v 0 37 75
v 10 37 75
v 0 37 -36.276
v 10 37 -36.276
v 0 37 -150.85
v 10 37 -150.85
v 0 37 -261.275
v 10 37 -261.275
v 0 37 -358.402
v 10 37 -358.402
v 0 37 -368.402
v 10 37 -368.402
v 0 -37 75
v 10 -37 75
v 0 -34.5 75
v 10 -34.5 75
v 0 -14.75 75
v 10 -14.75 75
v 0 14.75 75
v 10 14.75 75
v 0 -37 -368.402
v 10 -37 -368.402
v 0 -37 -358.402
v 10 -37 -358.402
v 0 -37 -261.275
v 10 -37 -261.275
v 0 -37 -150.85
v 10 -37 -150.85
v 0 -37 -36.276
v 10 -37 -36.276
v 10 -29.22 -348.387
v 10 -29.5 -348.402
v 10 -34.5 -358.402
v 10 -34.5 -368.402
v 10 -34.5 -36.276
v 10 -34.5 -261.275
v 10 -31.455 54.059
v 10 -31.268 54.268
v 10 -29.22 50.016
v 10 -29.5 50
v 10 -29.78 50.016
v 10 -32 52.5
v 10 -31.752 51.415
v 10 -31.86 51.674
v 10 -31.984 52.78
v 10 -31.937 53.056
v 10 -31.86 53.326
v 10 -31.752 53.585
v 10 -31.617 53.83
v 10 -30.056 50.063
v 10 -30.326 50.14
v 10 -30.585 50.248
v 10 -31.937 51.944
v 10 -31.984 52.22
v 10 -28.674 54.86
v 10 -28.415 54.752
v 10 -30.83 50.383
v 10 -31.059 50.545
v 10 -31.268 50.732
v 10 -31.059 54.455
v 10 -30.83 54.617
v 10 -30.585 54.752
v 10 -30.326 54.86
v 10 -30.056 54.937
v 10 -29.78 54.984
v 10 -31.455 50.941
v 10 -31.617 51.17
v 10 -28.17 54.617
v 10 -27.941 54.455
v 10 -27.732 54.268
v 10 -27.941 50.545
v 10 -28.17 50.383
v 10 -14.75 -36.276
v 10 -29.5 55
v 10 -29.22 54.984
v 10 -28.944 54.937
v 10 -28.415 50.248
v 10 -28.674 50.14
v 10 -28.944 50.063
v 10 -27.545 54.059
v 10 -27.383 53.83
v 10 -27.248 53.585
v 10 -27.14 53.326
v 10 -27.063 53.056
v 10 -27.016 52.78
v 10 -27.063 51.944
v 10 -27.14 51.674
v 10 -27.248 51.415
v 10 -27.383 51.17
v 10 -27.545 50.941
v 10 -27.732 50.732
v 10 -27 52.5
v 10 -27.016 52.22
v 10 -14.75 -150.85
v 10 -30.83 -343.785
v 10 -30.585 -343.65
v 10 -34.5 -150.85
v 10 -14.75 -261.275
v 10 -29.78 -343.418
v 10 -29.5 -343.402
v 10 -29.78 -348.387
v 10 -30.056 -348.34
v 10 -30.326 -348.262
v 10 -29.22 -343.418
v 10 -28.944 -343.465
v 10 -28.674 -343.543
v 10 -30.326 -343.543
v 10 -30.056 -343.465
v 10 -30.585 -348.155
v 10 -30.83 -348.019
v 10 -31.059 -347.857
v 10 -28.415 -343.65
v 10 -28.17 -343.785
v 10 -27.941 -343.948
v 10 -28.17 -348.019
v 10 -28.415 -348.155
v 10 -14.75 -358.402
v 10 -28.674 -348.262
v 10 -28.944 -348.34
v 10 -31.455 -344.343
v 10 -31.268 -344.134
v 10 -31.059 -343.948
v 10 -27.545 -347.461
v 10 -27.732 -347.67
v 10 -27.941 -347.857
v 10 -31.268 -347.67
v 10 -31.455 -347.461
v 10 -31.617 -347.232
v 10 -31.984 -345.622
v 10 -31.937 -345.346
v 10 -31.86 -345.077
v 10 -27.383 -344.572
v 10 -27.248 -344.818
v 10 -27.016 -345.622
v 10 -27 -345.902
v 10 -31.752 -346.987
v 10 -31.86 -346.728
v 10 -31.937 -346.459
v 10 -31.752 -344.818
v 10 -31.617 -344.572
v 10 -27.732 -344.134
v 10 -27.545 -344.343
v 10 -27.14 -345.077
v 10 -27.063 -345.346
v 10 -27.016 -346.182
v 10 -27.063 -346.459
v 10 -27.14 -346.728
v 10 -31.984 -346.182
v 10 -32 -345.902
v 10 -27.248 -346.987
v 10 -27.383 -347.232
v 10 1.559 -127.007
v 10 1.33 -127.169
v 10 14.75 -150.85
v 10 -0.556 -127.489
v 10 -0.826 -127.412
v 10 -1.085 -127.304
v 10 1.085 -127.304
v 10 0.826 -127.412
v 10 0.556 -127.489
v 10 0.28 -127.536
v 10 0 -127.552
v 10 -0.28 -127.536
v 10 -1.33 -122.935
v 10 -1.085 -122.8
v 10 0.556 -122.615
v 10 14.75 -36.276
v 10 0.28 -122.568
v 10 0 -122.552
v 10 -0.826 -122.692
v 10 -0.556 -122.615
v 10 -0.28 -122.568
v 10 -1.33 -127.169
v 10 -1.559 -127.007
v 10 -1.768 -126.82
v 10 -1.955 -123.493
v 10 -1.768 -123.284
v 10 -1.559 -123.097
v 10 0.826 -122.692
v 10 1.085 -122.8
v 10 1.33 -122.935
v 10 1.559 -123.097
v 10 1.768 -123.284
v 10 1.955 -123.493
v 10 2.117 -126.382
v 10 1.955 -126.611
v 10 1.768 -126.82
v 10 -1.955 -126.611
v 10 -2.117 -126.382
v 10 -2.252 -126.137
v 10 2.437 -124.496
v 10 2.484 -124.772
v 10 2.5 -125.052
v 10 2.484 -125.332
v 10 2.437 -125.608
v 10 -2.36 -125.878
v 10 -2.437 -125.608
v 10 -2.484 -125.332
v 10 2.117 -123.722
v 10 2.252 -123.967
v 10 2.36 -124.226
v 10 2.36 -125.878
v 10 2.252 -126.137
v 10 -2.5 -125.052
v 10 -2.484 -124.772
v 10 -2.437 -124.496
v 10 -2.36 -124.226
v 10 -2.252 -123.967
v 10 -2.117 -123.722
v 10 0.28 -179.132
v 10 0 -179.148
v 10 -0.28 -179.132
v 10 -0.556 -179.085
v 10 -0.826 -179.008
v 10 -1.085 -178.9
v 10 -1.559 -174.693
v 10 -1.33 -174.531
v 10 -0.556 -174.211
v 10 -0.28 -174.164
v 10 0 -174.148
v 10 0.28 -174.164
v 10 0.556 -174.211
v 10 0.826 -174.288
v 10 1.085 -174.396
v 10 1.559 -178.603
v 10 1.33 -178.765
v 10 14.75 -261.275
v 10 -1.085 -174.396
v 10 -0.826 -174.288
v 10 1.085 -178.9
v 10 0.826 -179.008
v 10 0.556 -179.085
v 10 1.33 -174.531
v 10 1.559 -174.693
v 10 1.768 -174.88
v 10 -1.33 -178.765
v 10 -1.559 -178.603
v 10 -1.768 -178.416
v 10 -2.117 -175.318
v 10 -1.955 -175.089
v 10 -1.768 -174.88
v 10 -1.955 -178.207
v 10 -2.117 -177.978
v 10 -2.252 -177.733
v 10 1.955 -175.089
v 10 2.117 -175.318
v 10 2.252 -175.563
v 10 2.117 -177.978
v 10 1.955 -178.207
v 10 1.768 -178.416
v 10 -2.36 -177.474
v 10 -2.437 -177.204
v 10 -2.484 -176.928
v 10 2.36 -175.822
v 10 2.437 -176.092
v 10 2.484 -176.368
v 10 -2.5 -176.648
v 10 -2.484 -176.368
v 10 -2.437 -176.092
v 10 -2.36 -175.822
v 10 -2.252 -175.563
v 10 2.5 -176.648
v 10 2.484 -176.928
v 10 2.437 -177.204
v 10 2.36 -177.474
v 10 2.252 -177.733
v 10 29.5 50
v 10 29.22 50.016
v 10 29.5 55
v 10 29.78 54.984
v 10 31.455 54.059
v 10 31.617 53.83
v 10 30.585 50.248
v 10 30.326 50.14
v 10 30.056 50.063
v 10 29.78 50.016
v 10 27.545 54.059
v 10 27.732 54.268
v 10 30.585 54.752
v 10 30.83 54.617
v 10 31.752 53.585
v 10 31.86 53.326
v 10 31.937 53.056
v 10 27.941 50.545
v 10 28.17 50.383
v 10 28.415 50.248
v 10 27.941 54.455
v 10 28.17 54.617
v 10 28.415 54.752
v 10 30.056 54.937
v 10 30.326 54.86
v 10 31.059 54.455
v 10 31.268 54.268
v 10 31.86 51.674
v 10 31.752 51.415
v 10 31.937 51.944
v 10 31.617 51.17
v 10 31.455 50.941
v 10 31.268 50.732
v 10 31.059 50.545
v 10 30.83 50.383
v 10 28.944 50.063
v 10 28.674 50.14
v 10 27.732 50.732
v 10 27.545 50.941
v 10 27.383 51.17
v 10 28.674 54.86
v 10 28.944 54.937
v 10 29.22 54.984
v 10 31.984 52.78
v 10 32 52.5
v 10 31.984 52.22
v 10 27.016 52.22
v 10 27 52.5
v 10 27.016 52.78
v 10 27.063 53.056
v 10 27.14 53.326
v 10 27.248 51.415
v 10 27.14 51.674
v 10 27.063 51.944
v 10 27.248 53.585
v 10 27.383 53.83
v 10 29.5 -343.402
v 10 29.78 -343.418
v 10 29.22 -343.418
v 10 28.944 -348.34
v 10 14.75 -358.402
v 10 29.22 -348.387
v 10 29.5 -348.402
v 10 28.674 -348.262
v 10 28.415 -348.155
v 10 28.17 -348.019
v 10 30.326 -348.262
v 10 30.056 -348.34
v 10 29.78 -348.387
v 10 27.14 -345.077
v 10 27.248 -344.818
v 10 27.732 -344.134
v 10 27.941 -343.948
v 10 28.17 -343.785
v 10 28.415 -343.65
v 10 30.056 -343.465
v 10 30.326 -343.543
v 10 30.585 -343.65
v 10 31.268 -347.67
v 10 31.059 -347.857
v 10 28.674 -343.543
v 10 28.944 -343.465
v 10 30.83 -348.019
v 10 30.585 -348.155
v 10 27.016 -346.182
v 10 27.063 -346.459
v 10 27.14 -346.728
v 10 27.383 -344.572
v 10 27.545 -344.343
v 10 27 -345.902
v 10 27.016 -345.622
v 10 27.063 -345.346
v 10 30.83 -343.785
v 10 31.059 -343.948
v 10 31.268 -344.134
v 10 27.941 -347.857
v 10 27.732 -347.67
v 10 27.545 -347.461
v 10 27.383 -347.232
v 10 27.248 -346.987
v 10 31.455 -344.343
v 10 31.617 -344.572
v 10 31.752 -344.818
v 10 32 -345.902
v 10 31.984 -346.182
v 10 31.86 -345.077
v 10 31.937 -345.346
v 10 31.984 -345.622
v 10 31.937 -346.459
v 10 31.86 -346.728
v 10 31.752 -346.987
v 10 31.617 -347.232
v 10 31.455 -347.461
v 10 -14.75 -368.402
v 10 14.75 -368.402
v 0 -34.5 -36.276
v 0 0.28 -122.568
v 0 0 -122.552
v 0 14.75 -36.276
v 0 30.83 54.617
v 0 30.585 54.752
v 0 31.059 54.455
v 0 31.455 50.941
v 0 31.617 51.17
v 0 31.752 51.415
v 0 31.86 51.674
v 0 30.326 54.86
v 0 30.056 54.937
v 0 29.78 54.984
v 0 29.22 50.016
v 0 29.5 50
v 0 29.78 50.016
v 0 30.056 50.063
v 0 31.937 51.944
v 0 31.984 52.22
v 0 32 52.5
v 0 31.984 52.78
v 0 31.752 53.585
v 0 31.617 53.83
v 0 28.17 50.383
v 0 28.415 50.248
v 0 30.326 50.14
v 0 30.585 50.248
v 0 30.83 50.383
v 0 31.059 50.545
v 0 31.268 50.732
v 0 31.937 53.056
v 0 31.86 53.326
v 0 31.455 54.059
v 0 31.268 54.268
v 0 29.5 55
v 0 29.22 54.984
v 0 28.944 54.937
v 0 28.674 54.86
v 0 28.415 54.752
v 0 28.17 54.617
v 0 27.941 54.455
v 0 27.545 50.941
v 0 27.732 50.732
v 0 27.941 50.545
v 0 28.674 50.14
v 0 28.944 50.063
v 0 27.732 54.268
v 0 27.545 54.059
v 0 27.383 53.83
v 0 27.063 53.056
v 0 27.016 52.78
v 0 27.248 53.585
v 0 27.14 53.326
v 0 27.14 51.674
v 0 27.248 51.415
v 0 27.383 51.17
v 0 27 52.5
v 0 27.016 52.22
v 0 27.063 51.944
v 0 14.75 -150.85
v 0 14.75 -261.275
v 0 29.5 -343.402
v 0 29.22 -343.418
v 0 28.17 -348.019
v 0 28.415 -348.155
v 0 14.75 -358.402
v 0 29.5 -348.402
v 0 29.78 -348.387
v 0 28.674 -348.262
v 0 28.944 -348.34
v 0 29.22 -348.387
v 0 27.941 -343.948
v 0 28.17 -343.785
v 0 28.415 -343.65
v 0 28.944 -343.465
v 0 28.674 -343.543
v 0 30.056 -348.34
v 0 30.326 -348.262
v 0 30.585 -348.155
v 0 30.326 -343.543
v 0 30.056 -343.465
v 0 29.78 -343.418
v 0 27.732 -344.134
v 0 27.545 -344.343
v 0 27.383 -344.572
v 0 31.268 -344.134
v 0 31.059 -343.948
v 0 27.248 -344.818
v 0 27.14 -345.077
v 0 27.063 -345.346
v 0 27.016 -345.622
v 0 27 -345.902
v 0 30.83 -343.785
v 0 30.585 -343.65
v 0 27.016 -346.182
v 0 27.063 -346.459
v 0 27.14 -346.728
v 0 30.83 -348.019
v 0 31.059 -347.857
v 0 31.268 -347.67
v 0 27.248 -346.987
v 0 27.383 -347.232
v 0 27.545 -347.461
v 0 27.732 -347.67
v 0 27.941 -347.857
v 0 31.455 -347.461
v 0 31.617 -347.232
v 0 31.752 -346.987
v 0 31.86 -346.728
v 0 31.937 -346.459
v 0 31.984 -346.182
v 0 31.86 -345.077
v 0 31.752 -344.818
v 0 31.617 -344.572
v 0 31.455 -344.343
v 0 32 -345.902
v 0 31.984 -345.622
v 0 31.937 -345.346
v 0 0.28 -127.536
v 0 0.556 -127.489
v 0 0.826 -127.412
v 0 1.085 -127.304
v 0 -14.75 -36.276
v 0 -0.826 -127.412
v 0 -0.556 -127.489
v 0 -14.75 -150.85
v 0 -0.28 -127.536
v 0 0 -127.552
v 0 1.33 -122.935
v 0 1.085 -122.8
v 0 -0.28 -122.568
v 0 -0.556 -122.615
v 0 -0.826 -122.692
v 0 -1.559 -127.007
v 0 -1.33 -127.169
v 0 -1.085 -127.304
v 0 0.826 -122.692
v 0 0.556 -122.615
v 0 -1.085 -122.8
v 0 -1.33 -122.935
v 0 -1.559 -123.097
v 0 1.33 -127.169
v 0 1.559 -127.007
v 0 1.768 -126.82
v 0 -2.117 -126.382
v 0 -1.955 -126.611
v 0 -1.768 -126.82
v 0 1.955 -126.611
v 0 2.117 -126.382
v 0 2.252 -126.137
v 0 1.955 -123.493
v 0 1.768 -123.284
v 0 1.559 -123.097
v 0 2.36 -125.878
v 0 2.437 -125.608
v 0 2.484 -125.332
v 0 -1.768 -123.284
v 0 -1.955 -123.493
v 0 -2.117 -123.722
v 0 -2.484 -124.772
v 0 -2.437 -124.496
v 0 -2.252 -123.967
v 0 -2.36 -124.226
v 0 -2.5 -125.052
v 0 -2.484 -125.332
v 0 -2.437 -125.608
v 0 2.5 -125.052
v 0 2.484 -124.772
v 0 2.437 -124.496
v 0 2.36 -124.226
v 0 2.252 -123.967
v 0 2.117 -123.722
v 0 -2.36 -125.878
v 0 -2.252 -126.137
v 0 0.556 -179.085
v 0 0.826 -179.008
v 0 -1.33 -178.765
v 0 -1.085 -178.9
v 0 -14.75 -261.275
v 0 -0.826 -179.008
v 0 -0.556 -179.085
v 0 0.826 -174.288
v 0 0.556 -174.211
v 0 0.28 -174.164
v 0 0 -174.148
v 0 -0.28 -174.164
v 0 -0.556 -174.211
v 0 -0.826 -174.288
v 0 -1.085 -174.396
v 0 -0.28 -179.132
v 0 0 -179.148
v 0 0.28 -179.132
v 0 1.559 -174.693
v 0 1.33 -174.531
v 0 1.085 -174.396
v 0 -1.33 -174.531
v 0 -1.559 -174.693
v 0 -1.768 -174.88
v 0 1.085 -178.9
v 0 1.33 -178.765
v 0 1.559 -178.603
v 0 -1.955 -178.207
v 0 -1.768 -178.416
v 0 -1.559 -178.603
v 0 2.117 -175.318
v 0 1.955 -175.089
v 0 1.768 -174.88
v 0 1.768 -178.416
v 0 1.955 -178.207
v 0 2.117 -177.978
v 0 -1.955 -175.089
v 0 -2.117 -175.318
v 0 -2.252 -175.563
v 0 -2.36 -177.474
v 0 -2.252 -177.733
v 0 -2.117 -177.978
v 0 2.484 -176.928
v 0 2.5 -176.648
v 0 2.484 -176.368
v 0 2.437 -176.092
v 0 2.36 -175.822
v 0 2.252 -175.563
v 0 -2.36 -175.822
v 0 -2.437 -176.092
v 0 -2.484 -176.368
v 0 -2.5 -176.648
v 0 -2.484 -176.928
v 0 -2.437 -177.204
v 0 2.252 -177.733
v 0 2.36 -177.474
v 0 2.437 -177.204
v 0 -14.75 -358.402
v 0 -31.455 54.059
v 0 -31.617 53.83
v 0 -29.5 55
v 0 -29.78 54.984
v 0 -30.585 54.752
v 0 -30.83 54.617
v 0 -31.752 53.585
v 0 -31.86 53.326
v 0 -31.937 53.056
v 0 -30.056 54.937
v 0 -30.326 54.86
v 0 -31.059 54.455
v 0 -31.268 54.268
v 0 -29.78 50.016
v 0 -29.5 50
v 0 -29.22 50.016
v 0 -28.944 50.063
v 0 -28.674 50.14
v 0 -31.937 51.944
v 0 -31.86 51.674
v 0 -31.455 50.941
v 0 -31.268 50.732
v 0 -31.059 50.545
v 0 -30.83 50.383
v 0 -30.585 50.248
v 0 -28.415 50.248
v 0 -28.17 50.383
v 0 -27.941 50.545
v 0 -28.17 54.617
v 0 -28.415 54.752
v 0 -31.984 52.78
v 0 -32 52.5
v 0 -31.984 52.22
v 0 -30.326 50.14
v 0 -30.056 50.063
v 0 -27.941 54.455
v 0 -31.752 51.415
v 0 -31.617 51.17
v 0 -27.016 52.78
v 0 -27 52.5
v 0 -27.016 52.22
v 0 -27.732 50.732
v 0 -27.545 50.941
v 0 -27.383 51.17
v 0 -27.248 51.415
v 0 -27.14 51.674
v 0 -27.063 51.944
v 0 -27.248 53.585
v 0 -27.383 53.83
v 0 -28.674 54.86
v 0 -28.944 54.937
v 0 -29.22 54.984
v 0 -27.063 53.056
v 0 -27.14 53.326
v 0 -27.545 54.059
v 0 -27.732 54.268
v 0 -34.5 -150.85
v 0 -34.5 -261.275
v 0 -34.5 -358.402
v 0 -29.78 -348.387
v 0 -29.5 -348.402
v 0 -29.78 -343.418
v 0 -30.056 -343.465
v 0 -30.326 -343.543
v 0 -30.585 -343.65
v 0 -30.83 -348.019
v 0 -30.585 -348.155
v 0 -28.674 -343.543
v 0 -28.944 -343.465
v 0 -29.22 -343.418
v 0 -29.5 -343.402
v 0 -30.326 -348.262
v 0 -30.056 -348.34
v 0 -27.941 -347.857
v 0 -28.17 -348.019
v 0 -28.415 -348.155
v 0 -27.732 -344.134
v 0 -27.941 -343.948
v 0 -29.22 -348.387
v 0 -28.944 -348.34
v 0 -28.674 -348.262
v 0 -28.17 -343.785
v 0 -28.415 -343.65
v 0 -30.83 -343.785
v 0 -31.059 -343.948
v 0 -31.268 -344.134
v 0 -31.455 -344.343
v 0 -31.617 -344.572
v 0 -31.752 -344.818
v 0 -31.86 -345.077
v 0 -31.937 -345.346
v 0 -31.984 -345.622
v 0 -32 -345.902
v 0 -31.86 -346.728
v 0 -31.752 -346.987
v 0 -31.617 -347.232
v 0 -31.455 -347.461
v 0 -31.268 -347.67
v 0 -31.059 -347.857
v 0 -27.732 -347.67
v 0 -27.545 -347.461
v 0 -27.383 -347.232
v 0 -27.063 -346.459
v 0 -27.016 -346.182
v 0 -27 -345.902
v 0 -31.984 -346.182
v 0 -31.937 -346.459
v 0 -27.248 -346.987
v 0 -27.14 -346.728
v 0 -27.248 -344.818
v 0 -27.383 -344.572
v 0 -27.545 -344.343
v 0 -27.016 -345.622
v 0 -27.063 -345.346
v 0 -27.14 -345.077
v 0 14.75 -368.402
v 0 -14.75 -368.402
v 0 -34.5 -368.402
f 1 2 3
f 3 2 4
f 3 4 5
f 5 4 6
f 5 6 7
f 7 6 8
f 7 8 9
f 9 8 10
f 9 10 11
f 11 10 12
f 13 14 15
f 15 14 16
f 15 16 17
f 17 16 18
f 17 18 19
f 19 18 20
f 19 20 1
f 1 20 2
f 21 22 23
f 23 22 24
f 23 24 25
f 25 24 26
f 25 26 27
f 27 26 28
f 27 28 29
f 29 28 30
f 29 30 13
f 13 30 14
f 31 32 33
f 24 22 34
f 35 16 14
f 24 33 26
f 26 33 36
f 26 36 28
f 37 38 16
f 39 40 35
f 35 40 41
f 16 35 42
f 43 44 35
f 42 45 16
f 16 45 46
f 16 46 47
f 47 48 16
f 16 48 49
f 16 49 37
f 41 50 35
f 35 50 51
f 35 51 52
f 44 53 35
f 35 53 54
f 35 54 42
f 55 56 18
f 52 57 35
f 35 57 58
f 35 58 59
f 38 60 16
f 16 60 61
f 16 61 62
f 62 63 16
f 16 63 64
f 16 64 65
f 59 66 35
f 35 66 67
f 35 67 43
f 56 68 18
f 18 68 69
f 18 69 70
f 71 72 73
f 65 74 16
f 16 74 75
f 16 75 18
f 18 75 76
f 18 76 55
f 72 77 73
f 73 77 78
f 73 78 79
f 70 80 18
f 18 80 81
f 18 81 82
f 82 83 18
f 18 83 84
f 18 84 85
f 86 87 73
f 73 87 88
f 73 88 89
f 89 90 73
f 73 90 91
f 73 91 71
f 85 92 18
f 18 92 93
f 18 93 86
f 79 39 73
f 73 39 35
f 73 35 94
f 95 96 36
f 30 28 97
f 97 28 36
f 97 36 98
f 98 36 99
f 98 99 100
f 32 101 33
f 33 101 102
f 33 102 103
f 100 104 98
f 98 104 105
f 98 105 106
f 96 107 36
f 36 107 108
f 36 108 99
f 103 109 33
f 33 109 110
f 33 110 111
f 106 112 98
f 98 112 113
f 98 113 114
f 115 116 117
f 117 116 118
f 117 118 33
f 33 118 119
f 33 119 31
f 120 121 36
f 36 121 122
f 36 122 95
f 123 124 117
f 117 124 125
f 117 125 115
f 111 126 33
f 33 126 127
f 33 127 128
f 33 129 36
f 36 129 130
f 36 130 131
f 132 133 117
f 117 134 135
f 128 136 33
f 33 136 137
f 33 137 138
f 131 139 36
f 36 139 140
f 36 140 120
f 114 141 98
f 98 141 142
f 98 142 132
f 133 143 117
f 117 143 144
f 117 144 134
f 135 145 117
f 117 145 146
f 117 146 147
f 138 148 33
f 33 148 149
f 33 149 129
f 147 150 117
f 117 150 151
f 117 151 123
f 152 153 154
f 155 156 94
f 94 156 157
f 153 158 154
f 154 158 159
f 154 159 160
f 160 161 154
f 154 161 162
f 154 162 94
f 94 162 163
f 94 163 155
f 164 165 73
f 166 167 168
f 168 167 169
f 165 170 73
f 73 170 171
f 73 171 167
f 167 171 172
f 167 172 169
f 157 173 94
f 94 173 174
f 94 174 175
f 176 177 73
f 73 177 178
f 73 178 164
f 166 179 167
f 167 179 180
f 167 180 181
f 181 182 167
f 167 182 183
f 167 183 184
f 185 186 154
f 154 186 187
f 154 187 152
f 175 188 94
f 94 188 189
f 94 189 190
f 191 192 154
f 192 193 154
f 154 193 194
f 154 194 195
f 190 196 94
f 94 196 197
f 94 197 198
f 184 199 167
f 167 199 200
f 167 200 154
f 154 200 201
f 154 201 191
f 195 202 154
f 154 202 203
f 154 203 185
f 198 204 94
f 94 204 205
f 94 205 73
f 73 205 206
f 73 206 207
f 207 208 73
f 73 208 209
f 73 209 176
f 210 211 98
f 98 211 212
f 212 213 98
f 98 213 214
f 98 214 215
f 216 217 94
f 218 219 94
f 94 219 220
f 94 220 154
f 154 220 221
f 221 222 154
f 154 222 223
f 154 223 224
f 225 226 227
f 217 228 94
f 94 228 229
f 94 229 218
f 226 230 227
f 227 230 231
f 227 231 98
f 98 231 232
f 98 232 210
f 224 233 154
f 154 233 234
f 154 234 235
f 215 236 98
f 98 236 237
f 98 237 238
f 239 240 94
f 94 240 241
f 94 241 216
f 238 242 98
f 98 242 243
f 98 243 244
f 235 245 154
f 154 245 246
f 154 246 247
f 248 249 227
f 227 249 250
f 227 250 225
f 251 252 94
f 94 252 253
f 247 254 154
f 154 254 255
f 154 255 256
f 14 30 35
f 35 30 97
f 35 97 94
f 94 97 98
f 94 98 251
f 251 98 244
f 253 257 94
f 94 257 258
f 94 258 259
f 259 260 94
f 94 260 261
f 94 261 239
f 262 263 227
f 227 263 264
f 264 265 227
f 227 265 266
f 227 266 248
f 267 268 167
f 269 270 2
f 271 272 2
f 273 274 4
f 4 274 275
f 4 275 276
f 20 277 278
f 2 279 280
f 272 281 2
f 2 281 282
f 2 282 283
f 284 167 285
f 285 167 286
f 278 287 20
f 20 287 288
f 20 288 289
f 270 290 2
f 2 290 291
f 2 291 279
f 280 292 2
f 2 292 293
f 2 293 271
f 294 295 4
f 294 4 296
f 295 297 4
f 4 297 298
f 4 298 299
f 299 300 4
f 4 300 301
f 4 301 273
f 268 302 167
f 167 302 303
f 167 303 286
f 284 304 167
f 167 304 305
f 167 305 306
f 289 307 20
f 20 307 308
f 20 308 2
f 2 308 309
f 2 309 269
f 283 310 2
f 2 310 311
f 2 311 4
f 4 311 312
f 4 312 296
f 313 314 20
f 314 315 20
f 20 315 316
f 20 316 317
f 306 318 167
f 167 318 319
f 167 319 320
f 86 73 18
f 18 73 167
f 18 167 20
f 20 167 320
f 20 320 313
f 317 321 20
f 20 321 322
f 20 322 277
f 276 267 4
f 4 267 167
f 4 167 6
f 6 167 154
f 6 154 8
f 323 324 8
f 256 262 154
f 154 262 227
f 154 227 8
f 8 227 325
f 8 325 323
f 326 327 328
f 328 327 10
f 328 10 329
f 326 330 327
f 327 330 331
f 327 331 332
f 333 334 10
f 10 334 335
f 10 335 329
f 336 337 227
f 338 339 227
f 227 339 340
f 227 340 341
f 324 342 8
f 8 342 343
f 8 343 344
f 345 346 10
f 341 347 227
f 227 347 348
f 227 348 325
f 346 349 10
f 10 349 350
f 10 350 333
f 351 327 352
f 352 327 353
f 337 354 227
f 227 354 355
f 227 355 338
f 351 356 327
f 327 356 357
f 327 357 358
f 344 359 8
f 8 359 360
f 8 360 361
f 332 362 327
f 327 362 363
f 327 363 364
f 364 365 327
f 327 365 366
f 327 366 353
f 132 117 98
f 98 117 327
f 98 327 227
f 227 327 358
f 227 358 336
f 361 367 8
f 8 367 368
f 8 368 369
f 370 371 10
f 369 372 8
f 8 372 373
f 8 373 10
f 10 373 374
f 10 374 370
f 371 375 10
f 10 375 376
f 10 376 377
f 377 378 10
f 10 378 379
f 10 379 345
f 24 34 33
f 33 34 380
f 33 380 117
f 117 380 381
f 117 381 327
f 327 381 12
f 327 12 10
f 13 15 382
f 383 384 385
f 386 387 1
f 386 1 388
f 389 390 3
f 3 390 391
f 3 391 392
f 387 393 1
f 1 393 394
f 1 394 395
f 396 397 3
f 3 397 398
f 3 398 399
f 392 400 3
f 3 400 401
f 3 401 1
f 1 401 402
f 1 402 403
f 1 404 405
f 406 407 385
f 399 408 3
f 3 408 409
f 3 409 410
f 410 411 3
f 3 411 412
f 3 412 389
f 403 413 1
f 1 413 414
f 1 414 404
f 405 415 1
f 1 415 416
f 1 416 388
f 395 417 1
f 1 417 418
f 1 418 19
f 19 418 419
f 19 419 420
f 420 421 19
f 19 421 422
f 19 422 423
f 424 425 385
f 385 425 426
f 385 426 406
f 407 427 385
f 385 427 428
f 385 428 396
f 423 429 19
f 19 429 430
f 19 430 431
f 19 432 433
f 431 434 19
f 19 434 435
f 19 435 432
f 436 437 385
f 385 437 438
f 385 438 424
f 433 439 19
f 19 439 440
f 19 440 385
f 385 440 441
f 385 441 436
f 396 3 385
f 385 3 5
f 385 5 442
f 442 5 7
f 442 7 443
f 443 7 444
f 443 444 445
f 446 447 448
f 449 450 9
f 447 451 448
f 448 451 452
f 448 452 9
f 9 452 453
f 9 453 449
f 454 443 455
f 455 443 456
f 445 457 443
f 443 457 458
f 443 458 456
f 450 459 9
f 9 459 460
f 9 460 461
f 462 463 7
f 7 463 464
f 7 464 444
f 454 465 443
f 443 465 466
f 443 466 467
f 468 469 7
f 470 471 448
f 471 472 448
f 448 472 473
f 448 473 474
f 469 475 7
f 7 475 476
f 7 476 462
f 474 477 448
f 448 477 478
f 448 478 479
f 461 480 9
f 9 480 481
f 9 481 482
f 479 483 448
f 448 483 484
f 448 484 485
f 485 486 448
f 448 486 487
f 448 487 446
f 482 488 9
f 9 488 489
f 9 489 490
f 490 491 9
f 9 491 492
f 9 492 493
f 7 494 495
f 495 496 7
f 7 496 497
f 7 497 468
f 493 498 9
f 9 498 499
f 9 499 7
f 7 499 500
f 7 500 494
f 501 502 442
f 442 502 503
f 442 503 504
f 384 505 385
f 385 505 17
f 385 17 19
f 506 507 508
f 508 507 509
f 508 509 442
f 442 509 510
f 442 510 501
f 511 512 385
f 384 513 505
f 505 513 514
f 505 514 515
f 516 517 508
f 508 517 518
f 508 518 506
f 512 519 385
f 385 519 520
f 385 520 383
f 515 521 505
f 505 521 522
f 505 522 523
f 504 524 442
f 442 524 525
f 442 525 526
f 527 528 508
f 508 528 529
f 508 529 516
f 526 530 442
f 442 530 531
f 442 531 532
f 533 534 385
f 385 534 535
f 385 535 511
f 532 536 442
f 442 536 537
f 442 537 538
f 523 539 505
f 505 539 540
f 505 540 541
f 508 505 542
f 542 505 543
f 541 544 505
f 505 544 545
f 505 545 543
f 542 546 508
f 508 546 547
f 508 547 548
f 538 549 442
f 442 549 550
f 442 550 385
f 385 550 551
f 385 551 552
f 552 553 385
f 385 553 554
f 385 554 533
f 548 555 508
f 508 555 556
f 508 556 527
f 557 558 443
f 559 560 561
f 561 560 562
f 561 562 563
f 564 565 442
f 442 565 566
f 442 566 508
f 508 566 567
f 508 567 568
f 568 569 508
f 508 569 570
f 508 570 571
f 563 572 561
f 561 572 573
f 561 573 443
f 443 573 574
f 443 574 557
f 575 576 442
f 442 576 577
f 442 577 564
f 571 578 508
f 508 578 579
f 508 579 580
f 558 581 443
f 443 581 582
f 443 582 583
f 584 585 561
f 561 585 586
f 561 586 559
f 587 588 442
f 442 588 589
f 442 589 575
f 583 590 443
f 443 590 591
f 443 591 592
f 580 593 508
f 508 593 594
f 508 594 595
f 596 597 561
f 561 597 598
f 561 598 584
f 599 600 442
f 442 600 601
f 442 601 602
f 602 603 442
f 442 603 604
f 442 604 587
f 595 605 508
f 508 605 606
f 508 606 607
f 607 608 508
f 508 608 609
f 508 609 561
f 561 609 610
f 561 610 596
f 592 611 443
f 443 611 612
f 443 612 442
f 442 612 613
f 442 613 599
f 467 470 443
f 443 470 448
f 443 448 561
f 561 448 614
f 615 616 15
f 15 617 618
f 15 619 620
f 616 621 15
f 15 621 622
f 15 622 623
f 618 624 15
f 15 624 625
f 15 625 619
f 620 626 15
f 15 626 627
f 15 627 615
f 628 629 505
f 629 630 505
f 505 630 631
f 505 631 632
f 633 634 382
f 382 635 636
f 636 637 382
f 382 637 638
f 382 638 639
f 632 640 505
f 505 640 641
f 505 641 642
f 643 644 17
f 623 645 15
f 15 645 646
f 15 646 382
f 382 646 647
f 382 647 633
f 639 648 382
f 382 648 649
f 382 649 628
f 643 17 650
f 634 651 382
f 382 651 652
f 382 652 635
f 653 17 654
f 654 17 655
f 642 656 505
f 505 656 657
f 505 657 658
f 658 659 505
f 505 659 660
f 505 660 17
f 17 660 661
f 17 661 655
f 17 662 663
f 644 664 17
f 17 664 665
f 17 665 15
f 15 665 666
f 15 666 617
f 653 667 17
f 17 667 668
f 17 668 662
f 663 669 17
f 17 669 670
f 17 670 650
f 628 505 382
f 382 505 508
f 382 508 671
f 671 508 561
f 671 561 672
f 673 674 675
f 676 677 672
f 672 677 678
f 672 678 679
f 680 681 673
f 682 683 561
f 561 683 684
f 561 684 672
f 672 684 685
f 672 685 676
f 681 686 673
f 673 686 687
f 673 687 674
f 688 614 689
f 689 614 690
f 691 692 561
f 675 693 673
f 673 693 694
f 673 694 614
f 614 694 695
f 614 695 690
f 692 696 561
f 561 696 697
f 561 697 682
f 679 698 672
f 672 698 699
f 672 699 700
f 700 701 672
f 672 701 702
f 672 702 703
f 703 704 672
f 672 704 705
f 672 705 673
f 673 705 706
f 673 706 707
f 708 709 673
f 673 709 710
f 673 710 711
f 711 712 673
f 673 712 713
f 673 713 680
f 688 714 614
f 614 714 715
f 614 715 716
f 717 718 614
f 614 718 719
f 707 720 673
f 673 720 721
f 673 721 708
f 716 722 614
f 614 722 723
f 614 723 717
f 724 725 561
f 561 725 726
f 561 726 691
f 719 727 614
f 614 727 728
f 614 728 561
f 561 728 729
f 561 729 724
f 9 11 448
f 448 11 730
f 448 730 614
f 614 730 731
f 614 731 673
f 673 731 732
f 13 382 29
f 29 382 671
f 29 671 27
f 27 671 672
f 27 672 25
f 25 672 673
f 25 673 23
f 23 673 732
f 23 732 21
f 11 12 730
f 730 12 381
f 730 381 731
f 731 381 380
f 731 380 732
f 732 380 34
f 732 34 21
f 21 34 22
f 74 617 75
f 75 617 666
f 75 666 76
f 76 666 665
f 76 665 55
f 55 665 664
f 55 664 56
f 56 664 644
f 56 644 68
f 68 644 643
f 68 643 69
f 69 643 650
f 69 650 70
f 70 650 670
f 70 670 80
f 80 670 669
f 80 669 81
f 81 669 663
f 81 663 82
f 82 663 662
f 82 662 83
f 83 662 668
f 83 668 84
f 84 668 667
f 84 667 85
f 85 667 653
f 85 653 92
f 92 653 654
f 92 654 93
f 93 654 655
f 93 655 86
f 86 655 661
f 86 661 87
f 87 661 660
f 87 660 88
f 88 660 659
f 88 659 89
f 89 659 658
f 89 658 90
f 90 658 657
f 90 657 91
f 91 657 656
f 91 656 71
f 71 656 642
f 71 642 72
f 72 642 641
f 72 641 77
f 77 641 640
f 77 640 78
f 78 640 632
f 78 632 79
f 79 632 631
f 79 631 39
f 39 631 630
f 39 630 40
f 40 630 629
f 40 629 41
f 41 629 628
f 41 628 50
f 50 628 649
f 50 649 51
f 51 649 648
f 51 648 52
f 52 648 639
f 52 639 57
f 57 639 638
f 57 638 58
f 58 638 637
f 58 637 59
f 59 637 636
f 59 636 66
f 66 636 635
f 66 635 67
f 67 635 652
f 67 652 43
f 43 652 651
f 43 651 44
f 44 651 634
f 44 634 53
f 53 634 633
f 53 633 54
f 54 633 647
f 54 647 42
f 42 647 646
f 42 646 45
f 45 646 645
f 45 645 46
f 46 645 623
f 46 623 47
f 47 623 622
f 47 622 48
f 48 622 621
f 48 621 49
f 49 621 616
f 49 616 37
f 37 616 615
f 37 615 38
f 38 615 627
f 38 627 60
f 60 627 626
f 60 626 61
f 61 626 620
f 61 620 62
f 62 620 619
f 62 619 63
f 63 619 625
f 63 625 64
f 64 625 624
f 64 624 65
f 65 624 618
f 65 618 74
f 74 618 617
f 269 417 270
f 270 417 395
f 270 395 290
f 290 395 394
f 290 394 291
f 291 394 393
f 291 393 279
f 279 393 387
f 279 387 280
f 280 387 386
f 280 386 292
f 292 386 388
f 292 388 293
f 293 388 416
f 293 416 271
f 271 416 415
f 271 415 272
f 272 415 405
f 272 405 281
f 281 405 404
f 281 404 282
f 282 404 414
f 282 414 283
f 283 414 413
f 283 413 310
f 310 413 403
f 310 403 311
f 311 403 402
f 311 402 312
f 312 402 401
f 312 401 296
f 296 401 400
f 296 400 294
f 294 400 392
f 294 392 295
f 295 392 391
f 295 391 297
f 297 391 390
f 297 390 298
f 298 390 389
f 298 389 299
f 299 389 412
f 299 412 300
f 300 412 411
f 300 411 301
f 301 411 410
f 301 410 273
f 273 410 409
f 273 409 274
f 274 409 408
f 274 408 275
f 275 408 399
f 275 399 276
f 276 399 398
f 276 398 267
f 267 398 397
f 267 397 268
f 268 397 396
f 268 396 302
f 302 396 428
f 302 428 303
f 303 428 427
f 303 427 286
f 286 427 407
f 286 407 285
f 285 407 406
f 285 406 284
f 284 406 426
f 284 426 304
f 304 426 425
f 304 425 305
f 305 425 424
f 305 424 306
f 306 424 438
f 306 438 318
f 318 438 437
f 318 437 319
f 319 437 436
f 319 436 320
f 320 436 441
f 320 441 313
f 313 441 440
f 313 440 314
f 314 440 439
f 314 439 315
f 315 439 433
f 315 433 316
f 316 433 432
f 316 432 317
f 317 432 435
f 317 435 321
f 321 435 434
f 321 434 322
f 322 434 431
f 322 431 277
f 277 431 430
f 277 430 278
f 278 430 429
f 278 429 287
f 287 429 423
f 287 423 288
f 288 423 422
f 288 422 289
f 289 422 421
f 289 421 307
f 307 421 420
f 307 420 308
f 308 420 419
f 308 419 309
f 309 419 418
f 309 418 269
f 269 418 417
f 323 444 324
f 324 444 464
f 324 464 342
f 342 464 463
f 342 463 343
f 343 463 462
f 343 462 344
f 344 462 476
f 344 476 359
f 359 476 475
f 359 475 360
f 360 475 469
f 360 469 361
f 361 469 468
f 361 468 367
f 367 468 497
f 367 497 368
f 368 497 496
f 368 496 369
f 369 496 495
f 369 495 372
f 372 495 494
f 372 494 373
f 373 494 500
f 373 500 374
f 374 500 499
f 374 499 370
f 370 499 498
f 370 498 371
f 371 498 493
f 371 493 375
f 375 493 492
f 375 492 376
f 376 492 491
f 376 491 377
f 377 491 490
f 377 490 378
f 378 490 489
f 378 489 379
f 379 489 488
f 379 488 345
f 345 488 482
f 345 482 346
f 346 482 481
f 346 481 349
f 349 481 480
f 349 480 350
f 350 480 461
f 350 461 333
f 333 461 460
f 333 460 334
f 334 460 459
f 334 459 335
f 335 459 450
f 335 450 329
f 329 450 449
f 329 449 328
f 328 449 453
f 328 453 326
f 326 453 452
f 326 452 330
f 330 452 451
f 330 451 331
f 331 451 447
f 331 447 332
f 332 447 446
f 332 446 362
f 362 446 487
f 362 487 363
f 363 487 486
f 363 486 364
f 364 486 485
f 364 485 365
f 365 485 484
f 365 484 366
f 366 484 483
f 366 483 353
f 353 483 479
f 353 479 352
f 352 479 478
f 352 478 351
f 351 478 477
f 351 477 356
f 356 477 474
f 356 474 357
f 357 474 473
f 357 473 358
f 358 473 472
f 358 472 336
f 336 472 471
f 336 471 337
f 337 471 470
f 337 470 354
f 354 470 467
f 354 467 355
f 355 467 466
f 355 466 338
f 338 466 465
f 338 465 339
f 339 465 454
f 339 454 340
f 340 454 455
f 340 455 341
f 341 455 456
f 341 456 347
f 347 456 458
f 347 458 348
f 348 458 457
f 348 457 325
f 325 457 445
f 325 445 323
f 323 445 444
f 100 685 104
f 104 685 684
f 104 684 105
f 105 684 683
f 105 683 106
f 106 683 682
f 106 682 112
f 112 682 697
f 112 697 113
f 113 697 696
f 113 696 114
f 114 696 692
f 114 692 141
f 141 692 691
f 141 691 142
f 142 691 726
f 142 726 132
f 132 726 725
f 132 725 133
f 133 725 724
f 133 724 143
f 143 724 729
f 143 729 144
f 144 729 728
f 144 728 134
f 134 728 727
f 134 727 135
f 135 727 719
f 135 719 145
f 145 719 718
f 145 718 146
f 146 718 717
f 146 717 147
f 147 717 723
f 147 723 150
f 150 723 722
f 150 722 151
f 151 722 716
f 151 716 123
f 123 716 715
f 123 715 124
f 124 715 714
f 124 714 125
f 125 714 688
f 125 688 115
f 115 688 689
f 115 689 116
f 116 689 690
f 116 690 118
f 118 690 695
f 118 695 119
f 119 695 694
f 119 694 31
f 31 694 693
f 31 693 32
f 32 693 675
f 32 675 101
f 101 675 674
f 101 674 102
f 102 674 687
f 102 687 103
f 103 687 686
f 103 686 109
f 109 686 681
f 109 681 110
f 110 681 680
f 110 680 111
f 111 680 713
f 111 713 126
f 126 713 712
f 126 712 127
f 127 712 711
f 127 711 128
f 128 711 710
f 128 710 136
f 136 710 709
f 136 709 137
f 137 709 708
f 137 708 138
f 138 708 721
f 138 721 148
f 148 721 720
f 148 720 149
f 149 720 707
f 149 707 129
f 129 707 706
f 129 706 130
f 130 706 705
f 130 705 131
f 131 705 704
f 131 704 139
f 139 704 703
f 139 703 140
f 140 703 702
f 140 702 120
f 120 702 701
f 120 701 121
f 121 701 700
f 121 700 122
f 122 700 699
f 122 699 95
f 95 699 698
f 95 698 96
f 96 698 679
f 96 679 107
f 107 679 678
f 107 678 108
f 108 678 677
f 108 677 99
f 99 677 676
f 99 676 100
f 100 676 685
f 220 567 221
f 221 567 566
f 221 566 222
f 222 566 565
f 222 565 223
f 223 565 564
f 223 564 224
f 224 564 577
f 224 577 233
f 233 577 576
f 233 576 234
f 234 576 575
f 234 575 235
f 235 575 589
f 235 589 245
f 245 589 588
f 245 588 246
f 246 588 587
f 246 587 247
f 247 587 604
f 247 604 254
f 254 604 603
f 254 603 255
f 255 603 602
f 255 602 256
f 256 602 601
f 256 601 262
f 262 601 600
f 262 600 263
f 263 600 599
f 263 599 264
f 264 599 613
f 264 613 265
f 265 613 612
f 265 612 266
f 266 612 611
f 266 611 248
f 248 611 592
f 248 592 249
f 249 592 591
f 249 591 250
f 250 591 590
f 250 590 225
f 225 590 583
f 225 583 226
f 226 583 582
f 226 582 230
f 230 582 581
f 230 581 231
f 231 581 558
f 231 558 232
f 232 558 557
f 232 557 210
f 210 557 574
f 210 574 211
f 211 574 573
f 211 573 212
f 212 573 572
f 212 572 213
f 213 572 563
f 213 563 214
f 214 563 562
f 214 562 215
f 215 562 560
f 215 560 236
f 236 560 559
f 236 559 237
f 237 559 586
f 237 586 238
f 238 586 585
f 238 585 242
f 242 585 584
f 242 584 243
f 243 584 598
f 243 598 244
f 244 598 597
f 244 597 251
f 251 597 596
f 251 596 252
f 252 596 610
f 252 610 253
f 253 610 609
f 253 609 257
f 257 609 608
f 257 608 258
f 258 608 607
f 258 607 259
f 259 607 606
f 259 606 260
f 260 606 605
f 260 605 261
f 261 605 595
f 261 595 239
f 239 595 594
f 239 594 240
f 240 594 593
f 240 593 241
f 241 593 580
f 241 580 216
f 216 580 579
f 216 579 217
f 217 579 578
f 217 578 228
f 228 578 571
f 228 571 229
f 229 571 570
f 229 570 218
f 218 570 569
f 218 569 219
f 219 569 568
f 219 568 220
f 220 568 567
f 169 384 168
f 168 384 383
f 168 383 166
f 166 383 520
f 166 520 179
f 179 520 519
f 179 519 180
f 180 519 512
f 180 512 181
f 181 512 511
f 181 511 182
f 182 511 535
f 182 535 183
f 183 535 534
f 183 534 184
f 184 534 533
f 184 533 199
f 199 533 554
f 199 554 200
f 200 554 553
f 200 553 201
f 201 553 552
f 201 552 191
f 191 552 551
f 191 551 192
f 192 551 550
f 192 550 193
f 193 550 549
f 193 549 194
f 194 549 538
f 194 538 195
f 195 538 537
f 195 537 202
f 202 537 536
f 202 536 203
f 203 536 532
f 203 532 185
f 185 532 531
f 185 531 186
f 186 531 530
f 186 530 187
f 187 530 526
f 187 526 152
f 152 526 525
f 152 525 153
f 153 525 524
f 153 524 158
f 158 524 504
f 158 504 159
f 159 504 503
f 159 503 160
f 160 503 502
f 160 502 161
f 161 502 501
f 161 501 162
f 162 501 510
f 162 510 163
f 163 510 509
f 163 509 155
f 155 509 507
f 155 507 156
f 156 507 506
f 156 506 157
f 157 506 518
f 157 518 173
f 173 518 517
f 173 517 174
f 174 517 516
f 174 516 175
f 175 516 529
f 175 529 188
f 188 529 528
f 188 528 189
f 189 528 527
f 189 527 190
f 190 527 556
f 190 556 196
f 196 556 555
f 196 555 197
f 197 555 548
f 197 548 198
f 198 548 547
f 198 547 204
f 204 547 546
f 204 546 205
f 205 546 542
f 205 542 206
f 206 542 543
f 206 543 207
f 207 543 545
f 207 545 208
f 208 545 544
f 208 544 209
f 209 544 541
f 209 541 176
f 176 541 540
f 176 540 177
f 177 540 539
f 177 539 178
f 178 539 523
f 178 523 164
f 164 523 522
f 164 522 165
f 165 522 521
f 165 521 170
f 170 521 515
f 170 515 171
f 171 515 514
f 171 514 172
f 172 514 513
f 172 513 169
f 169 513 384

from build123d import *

# Parameters (mm, degrees)
SKETCH1_W           = 150
SKETCH1_H           = 74
BOSS_EXTRUDE1_DEPTH = 10
SKETCH2_W           = 10
SKETCH2_H           = 74
BOSS_EXTRUDE2_DEPTH = 283.402218
SKETCH3_W           = 10
SKETCH3_H           = 74
BOSS_EXTRUDE3_DEPTH = 10
SKETCH4_R           = 2.5
CUT_EXTRUDE1_DEPTH  = 10
SKETCH11_R          = 2.5
CUT_EXTRUDE2_DEPTH  = 10


with BuildPart() as part:
    # Sketch1 → Boss-Extrude1 (new body)
    with BuildSketch(Plane(origin=(0, 0, 0), x_dir=(0, 0, -1), z_dir=(1, 0, 0))):
        Rectangle(SKETCH1_W, SKETCH1_H)
    extrude(amount=BOSS_EXTRUDE1_DEPTH)

    # Sketch2 → Boss-Extrude2 (add)
    with BuildSketch(Plane(origin=(0, 0, -75), x_dir=(-1, 0, 0), z_dir=(0, 0, -1))):
        with Locations((-5, 0)):
            Rectangle(SKETCH2_W, SKETCH2_H)
    extrude(amount=BOSS_EXTRUDE2_DEPTH)

    # Sketch3 → Boss-Extrude3 (add)
    with BuildSketch(Plane(origin=(0, 0, -358.402218), x_dir=(-1, 0, 0), z_dir=(0, 0, -1))):
        with Locations((-5, 0)):
            Rectangle(SKETCH3_W, SKETCH3_H)
    extrude(amount=BOSS_EXTRUDE3_DEPTH)

    # Sketch4 → Cut-Extrude1 (cut)
    with BuildSketch(Plane.ZY):
        with Locations((52.5, -29.5)):
            Circle(SKETCH4_R)
        with Locations((52.5, 29.5)):
            Circle(SKETCH4_R)
        with Locations((-345.902218, 29.5)):
            Circle(SKETCH4_R)
        with Locations((-345.902218, -29.5)):
            Circle(SKETCH4_R)
    extrude(amount=-CUT_EXTRUDE1_DEPTH, mode=Mode.SUBTRACT)

    # Sketch11 → Cut-Extrude2 (cut)
    with BuildSketch(Plane.ZY):
        with Locations((-125.052041, 0)):
            Circle(SKETCH11_R)
        with Locations((-176.647959, 0)):
            Circle(SKETCH11_R)
    extrude(amount=-CUT_EXTRUDE2_DEPTH, mode=Mode.SUBTRACT)


solid = part.part
